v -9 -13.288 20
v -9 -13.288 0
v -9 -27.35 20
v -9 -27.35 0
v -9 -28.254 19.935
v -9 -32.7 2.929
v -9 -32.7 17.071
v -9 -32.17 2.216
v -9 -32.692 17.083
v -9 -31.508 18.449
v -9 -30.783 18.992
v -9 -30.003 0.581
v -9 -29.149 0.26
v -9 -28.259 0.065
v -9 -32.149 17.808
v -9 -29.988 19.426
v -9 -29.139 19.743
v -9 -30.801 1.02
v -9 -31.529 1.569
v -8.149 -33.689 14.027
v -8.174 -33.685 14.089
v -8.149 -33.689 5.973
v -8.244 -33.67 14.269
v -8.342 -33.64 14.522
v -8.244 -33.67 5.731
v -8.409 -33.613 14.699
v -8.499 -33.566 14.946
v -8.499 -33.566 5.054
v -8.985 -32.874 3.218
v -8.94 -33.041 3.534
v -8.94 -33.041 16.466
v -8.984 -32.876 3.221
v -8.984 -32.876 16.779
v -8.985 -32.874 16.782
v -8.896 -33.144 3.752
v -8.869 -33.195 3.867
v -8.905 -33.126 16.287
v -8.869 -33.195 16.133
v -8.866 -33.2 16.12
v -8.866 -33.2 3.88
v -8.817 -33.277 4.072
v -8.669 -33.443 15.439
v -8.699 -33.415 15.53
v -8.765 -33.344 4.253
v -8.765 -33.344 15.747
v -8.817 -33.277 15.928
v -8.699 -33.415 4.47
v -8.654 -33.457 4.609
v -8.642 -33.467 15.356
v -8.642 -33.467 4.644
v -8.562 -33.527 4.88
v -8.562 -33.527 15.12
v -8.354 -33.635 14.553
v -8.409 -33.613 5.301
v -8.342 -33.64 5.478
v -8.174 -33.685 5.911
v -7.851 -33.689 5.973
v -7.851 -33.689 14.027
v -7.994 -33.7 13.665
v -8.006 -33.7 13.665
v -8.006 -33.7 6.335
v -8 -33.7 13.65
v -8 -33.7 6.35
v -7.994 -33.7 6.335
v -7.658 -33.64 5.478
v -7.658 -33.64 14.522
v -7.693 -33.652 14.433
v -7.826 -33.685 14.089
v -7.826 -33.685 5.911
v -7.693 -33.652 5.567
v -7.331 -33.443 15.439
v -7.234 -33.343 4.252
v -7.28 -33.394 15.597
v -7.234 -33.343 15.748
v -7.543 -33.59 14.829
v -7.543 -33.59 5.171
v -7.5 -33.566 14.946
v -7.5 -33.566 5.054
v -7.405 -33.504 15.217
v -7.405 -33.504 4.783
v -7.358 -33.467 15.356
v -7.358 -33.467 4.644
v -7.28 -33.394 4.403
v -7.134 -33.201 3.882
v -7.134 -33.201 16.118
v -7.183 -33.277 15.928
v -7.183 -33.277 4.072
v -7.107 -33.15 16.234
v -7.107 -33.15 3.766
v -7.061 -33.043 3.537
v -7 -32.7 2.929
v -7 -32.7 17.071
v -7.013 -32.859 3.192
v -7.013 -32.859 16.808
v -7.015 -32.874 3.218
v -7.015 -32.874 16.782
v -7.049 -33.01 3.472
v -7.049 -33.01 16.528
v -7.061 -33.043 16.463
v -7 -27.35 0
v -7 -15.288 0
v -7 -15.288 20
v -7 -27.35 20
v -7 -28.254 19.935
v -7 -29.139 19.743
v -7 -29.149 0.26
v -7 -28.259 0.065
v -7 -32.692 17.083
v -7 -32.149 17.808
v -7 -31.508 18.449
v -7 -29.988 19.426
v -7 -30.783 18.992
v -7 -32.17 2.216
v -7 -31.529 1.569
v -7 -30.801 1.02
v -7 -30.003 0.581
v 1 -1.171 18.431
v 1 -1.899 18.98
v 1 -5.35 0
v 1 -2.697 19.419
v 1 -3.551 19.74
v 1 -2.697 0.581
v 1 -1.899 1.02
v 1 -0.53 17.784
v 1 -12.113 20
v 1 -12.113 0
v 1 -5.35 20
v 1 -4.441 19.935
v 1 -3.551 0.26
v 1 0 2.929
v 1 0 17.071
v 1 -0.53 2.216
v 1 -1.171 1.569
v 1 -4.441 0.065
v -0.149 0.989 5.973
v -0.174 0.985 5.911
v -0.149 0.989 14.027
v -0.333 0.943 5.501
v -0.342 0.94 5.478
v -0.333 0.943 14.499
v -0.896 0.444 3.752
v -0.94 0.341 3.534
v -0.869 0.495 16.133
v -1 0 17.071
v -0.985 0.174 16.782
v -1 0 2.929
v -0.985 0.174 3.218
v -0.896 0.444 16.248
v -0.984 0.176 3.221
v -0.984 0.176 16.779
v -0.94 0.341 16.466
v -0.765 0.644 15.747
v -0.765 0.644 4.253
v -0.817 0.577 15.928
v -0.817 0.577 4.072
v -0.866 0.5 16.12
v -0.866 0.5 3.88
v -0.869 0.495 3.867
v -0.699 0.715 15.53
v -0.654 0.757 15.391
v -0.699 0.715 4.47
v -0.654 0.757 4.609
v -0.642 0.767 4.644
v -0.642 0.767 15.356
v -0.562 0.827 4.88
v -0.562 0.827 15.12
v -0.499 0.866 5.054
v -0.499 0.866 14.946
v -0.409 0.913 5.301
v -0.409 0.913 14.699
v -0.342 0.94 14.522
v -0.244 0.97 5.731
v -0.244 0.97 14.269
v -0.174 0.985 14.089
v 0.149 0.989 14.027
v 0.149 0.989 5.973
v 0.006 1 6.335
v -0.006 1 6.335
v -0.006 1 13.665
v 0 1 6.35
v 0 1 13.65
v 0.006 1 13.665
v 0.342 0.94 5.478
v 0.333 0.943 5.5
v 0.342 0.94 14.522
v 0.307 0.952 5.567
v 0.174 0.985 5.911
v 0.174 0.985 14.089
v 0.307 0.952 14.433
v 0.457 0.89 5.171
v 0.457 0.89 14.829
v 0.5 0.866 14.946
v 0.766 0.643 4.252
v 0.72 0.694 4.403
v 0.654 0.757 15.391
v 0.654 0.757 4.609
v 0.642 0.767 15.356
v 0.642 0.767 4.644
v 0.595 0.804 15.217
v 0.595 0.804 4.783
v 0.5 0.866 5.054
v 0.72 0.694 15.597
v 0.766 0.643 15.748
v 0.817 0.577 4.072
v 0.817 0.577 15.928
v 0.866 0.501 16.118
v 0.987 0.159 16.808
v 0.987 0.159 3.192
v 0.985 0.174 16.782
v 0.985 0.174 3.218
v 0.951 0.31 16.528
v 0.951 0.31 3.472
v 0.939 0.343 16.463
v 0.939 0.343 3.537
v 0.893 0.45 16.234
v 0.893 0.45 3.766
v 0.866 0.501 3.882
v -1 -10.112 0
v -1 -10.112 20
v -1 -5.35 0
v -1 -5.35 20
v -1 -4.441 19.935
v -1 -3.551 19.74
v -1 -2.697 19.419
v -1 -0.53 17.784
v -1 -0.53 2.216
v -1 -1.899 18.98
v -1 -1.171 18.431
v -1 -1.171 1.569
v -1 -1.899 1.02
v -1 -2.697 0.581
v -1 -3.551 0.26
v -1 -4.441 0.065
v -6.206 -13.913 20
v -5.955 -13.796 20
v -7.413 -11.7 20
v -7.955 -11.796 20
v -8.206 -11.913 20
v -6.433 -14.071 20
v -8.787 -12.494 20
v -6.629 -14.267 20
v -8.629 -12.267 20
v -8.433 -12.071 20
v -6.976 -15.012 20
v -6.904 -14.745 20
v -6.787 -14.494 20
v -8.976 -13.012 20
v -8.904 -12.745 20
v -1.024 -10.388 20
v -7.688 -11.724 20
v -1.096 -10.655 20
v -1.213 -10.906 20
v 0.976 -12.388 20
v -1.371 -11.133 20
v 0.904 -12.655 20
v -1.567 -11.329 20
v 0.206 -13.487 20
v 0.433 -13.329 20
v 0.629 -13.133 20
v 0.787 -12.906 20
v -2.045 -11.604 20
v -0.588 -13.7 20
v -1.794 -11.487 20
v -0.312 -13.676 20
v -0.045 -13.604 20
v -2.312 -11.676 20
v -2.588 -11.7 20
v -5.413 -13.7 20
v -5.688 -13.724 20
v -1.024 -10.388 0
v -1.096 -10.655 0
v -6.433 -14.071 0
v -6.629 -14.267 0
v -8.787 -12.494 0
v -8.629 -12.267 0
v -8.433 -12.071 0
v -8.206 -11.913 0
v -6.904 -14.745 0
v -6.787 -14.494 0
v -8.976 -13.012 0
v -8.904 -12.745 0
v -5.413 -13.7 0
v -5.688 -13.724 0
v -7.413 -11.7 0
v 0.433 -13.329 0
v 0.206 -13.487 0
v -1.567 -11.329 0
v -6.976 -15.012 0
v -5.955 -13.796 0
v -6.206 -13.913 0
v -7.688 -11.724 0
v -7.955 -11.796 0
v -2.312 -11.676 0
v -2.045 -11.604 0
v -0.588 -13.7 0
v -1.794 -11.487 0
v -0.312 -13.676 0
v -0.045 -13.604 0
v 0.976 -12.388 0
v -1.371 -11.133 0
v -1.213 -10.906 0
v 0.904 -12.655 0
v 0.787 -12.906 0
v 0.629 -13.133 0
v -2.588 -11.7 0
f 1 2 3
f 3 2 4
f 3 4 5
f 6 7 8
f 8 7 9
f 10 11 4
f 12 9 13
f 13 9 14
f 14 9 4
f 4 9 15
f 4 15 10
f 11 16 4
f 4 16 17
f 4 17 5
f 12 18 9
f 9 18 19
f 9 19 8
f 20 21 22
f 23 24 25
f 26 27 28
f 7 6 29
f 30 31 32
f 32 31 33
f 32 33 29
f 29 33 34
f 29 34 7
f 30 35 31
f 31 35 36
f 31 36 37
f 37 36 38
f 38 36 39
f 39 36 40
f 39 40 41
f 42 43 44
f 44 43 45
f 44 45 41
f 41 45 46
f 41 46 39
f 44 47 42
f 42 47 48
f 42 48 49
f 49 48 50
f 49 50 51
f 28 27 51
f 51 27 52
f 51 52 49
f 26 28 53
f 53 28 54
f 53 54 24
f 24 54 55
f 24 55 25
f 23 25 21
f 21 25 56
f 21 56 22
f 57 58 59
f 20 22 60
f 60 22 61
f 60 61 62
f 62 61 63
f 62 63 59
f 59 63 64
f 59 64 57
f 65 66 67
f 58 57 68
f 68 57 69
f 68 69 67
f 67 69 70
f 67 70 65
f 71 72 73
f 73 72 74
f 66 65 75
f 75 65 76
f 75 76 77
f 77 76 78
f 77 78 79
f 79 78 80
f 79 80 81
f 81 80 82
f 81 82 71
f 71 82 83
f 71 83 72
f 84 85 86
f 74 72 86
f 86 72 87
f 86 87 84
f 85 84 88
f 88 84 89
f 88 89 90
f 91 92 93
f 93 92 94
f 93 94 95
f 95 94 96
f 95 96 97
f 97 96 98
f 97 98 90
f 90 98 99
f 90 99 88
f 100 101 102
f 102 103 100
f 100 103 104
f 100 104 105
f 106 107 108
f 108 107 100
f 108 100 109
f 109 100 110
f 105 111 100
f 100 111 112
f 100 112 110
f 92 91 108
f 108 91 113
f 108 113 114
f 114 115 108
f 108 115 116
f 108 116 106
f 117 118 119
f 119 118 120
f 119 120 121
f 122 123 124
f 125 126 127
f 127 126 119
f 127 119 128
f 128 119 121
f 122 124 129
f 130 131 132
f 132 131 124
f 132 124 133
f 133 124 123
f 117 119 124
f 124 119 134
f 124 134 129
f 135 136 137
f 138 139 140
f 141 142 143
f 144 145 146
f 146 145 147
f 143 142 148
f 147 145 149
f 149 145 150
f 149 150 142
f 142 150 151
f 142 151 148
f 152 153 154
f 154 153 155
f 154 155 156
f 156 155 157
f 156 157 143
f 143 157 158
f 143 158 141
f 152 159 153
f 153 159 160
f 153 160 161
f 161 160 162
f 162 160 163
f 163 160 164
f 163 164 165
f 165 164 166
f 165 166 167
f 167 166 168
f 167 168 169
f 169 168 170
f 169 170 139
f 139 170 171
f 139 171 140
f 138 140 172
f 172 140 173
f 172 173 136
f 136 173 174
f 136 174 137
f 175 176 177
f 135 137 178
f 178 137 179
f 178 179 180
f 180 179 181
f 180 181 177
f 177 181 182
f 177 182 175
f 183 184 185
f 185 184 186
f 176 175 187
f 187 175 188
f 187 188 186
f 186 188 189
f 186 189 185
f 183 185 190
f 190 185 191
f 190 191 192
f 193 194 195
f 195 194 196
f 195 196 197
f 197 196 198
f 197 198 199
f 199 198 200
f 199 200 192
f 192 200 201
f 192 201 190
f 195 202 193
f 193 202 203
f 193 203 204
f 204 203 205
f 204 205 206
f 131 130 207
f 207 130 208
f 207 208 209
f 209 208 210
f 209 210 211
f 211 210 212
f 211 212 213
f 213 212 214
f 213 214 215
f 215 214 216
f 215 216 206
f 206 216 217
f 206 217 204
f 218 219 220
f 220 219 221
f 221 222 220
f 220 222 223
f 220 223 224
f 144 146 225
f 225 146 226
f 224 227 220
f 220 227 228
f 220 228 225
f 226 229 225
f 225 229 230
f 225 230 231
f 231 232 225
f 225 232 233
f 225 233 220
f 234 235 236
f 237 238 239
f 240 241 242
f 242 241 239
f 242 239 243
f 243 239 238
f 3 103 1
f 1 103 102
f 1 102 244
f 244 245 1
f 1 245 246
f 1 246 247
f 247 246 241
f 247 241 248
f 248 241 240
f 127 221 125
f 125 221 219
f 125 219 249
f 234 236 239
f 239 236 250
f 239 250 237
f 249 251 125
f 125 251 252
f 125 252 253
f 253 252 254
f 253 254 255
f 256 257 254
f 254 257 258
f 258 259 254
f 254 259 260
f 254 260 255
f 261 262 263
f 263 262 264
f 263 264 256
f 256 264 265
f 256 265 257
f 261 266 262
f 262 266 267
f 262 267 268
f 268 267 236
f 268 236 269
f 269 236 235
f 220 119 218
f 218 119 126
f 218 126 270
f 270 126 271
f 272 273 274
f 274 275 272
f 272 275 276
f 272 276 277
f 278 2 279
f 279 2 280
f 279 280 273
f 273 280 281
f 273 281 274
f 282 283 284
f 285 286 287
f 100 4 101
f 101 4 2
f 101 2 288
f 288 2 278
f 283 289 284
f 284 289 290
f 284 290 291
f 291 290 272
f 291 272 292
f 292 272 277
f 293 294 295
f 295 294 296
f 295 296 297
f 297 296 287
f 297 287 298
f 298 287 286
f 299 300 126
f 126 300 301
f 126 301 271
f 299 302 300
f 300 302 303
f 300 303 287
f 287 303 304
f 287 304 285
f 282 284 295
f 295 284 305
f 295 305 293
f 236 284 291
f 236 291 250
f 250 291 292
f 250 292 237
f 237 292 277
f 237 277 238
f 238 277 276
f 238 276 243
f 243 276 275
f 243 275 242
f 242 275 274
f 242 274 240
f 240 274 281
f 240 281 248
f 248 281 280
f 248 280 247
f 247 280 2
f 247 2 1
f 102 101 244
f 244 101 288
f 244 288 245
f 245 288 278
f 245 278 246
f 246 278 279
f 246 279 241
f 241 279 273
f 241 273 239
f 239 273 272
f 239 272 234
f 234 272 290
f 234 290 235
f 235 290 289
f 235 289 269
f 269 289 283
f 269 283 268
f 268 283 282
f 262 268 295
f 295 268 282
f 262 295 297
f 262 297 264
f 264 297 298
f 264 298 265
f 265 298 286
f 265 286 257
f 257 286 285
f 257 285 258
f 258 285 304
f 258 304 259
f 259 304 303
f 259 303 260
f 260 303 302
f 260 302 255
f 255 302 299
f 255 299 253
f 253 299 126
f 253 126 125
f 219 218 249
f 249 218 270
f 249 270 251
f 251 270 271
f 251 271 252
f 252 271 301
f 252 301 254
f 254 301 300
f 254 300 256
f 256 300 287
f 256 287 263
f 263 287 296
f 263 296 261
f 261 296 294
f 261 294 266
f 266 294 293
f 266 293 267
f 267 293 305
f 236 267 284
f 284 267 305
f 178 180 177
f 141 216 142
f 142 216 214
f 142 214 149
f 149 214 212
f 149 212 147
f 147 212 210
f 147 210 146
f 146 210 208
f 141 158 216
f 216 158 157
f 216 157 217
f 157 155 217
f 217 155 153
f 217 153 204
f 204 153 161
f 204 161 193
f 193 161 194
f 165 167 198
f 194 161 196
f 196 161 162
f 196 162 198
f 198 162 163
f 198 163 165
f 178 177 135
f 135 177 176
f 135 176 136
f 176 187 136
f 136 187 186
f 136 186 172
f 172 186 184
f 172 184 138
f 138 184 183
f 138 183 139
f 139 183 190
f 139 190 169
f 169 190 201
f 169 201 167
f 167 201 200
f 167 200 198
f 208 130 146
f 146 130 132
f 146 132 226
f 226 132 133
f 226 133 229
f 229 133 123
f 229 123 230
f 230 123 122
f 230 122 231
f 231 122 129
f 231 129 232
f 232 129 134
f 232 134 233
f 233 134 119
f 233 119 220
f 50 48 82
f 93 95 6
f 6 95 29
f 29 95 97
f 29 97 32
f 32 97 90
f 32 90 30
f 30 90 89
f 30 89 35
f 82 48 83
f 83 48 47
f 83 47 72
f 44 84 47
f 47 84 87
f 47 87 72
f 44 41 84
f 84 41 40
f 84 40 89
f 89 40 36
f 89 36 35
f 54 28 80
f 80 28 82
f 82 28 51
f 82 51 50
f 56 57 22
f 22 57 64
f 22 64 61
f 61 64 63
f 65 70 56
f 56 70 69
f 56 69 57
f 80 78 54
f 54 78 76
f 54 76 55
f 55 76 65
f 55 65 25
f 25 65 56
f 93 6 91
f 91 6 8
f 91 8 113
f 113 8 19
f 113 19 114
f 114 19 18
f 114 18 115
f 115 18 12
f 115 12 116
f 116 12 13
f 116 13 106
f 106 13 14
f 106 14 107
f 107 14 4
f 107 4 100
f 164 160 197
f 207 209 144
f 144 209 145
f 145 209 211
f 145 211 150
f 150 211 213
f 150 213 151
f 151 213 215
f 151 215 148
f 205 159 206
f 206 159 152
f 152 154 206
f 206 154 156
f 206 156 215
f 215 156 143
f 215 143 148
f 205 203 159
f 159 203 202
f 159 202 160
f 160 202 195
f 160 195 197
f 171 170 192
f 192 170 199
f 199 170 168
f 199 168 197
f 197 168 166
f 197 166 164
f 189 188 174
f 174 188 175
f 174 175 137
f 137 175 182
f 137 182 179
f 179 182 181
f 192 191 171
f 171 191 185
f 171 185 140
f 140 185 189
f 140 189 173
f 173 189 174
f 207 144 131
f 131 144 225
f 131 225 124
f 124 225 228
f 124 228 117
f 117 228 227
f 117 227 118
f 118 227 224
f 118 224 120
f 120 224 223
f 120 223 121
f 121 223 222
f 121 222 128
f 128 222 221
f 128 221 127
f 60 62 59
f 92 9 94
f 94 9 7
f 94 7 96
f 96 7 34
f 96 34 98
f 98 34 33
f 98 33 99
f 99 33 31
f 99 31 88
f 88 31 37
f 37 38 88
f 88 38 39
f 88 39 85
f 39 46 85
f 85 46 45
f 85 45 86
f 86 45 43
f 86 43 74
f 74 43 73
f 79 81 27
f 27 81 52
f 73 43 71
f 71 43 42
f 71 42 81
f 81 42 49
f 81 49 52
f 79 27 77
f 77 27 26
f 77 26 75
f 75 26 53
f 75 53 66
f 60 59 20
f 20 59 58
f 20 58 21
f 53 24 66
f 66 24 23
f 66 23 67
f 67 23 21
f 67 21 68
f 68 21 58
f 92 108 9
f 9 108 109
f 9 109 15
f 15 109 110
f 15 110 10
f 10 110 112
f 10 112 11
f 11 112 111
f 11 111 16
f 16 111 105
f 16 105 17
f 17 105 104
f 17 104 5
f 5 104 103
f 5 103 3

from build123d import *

# Parameters (mm, degrees)
BOSS_EXTRUDE1_DEPTH = 20
CUT_EXTRUDE1_DEPTH  = 55


with BuildPart() as part:
    # Sketch1 → Boss-Extrude1 (new body)
    with BuildSketch(Plane.XY):
        with BuildLine():
            Line((-1, 0), (-1, -10.1125))
            ThreePointArc((-1, -10.1125), (-1.464967985, -11.235032015), (-2.5875, -11.7))
            Line((-2.5875, -11.7), (-7.4125, -11.7))
            ThreePointArc((-7.4125, -11.7), (-8.535032015, -12.164967985), (-9, -13.2875))
            Line((-9, -13.2875), (-9, -32.7))
            ThreePointArc((-9, -32.7), (-8, -33.7), (-7, -32.7))
            Line((-7, -32.7), (-7, -15.2875))
            ThreePointArc((-7, -15.2875), (-6.535032015, -14.164967985), (-5.4125, -13.7))
            Line((-5.4125, -13.7), (-0.5875, -13.7))
            ThreePointArc((-0.5875, -13.7), (0.535032015, -13.235032015), (1, -12.1125))
            Line((1, -12.1125), (1, 0))
            ThreePointArc((1, 0), (0, 1), (-1, 0))
        make_face()
    extrude(amount=BOSS_EXTRUDE1_DEPTH)

    # Sketch2 → Cut-Extrude1 (cut)
    with BuildSketch(Plane.ZY.offset(9)):
        with BuildLine():
            ThreePointArc((0, -5.35), (1.859871939, -0.859871939), (6.35, 1))
            Line((6.35, 1), (0, 1))
            Line((0, 1), (0, -5.35))
        make_face()
        with BuildLine():
            Line((20, 1), (13.65, 1))
            ThreePointArc((13.65, 1), (18.140128061, -0.859871939), (20, -5.35))
            Line((20, -5.35), (20, 1))
        make_face()
        with BuildLine():
            Line((20, -32.7), (20, -27.35))
            ThreePointArc((20, -27.35), (19.219687686, -30.399767053), (17.070526275, -32.7))
            Line((17.070526275, -32.7), (20, -32.7))
        make_face()
        with BuildLine():
            Line((20, -33.7), (20, -32.7))
            Line((20, -32.7), (17.070526275, -32.7))
            ThreePointArc((17.070526275, -32.7), (15.431852968, -33.444874896), (13.65, -33.7))
            Line((13.65, -33.7), (20, -33.7))
        make_face()
        with BuildLine():
            ThreePointArc((2.929473725, -32.7), (0.780312314, -30.399767053), (0, -27.35))
            Line((0, -27.35), (0, -32.7))
            Line((0, -32.7), (2.929473725, -32.7))
        make_face()
        with BuildLine():
            Line((2.929473725, -32.7), (0, -32.7))
            Line((0, -32.7), (0, -33.7))
            Line((0, -33.7), (6.35, -33.7))
            ThreePointArc((6.35, -33.7), (4.568147032, -33.444874896), (2.929473725, -32.7))
        make_face()
    extrude(amount=-CUT_EXTRUDE1_DEPTH, mode=Mode.SUBTRACT)


solid = part.part
